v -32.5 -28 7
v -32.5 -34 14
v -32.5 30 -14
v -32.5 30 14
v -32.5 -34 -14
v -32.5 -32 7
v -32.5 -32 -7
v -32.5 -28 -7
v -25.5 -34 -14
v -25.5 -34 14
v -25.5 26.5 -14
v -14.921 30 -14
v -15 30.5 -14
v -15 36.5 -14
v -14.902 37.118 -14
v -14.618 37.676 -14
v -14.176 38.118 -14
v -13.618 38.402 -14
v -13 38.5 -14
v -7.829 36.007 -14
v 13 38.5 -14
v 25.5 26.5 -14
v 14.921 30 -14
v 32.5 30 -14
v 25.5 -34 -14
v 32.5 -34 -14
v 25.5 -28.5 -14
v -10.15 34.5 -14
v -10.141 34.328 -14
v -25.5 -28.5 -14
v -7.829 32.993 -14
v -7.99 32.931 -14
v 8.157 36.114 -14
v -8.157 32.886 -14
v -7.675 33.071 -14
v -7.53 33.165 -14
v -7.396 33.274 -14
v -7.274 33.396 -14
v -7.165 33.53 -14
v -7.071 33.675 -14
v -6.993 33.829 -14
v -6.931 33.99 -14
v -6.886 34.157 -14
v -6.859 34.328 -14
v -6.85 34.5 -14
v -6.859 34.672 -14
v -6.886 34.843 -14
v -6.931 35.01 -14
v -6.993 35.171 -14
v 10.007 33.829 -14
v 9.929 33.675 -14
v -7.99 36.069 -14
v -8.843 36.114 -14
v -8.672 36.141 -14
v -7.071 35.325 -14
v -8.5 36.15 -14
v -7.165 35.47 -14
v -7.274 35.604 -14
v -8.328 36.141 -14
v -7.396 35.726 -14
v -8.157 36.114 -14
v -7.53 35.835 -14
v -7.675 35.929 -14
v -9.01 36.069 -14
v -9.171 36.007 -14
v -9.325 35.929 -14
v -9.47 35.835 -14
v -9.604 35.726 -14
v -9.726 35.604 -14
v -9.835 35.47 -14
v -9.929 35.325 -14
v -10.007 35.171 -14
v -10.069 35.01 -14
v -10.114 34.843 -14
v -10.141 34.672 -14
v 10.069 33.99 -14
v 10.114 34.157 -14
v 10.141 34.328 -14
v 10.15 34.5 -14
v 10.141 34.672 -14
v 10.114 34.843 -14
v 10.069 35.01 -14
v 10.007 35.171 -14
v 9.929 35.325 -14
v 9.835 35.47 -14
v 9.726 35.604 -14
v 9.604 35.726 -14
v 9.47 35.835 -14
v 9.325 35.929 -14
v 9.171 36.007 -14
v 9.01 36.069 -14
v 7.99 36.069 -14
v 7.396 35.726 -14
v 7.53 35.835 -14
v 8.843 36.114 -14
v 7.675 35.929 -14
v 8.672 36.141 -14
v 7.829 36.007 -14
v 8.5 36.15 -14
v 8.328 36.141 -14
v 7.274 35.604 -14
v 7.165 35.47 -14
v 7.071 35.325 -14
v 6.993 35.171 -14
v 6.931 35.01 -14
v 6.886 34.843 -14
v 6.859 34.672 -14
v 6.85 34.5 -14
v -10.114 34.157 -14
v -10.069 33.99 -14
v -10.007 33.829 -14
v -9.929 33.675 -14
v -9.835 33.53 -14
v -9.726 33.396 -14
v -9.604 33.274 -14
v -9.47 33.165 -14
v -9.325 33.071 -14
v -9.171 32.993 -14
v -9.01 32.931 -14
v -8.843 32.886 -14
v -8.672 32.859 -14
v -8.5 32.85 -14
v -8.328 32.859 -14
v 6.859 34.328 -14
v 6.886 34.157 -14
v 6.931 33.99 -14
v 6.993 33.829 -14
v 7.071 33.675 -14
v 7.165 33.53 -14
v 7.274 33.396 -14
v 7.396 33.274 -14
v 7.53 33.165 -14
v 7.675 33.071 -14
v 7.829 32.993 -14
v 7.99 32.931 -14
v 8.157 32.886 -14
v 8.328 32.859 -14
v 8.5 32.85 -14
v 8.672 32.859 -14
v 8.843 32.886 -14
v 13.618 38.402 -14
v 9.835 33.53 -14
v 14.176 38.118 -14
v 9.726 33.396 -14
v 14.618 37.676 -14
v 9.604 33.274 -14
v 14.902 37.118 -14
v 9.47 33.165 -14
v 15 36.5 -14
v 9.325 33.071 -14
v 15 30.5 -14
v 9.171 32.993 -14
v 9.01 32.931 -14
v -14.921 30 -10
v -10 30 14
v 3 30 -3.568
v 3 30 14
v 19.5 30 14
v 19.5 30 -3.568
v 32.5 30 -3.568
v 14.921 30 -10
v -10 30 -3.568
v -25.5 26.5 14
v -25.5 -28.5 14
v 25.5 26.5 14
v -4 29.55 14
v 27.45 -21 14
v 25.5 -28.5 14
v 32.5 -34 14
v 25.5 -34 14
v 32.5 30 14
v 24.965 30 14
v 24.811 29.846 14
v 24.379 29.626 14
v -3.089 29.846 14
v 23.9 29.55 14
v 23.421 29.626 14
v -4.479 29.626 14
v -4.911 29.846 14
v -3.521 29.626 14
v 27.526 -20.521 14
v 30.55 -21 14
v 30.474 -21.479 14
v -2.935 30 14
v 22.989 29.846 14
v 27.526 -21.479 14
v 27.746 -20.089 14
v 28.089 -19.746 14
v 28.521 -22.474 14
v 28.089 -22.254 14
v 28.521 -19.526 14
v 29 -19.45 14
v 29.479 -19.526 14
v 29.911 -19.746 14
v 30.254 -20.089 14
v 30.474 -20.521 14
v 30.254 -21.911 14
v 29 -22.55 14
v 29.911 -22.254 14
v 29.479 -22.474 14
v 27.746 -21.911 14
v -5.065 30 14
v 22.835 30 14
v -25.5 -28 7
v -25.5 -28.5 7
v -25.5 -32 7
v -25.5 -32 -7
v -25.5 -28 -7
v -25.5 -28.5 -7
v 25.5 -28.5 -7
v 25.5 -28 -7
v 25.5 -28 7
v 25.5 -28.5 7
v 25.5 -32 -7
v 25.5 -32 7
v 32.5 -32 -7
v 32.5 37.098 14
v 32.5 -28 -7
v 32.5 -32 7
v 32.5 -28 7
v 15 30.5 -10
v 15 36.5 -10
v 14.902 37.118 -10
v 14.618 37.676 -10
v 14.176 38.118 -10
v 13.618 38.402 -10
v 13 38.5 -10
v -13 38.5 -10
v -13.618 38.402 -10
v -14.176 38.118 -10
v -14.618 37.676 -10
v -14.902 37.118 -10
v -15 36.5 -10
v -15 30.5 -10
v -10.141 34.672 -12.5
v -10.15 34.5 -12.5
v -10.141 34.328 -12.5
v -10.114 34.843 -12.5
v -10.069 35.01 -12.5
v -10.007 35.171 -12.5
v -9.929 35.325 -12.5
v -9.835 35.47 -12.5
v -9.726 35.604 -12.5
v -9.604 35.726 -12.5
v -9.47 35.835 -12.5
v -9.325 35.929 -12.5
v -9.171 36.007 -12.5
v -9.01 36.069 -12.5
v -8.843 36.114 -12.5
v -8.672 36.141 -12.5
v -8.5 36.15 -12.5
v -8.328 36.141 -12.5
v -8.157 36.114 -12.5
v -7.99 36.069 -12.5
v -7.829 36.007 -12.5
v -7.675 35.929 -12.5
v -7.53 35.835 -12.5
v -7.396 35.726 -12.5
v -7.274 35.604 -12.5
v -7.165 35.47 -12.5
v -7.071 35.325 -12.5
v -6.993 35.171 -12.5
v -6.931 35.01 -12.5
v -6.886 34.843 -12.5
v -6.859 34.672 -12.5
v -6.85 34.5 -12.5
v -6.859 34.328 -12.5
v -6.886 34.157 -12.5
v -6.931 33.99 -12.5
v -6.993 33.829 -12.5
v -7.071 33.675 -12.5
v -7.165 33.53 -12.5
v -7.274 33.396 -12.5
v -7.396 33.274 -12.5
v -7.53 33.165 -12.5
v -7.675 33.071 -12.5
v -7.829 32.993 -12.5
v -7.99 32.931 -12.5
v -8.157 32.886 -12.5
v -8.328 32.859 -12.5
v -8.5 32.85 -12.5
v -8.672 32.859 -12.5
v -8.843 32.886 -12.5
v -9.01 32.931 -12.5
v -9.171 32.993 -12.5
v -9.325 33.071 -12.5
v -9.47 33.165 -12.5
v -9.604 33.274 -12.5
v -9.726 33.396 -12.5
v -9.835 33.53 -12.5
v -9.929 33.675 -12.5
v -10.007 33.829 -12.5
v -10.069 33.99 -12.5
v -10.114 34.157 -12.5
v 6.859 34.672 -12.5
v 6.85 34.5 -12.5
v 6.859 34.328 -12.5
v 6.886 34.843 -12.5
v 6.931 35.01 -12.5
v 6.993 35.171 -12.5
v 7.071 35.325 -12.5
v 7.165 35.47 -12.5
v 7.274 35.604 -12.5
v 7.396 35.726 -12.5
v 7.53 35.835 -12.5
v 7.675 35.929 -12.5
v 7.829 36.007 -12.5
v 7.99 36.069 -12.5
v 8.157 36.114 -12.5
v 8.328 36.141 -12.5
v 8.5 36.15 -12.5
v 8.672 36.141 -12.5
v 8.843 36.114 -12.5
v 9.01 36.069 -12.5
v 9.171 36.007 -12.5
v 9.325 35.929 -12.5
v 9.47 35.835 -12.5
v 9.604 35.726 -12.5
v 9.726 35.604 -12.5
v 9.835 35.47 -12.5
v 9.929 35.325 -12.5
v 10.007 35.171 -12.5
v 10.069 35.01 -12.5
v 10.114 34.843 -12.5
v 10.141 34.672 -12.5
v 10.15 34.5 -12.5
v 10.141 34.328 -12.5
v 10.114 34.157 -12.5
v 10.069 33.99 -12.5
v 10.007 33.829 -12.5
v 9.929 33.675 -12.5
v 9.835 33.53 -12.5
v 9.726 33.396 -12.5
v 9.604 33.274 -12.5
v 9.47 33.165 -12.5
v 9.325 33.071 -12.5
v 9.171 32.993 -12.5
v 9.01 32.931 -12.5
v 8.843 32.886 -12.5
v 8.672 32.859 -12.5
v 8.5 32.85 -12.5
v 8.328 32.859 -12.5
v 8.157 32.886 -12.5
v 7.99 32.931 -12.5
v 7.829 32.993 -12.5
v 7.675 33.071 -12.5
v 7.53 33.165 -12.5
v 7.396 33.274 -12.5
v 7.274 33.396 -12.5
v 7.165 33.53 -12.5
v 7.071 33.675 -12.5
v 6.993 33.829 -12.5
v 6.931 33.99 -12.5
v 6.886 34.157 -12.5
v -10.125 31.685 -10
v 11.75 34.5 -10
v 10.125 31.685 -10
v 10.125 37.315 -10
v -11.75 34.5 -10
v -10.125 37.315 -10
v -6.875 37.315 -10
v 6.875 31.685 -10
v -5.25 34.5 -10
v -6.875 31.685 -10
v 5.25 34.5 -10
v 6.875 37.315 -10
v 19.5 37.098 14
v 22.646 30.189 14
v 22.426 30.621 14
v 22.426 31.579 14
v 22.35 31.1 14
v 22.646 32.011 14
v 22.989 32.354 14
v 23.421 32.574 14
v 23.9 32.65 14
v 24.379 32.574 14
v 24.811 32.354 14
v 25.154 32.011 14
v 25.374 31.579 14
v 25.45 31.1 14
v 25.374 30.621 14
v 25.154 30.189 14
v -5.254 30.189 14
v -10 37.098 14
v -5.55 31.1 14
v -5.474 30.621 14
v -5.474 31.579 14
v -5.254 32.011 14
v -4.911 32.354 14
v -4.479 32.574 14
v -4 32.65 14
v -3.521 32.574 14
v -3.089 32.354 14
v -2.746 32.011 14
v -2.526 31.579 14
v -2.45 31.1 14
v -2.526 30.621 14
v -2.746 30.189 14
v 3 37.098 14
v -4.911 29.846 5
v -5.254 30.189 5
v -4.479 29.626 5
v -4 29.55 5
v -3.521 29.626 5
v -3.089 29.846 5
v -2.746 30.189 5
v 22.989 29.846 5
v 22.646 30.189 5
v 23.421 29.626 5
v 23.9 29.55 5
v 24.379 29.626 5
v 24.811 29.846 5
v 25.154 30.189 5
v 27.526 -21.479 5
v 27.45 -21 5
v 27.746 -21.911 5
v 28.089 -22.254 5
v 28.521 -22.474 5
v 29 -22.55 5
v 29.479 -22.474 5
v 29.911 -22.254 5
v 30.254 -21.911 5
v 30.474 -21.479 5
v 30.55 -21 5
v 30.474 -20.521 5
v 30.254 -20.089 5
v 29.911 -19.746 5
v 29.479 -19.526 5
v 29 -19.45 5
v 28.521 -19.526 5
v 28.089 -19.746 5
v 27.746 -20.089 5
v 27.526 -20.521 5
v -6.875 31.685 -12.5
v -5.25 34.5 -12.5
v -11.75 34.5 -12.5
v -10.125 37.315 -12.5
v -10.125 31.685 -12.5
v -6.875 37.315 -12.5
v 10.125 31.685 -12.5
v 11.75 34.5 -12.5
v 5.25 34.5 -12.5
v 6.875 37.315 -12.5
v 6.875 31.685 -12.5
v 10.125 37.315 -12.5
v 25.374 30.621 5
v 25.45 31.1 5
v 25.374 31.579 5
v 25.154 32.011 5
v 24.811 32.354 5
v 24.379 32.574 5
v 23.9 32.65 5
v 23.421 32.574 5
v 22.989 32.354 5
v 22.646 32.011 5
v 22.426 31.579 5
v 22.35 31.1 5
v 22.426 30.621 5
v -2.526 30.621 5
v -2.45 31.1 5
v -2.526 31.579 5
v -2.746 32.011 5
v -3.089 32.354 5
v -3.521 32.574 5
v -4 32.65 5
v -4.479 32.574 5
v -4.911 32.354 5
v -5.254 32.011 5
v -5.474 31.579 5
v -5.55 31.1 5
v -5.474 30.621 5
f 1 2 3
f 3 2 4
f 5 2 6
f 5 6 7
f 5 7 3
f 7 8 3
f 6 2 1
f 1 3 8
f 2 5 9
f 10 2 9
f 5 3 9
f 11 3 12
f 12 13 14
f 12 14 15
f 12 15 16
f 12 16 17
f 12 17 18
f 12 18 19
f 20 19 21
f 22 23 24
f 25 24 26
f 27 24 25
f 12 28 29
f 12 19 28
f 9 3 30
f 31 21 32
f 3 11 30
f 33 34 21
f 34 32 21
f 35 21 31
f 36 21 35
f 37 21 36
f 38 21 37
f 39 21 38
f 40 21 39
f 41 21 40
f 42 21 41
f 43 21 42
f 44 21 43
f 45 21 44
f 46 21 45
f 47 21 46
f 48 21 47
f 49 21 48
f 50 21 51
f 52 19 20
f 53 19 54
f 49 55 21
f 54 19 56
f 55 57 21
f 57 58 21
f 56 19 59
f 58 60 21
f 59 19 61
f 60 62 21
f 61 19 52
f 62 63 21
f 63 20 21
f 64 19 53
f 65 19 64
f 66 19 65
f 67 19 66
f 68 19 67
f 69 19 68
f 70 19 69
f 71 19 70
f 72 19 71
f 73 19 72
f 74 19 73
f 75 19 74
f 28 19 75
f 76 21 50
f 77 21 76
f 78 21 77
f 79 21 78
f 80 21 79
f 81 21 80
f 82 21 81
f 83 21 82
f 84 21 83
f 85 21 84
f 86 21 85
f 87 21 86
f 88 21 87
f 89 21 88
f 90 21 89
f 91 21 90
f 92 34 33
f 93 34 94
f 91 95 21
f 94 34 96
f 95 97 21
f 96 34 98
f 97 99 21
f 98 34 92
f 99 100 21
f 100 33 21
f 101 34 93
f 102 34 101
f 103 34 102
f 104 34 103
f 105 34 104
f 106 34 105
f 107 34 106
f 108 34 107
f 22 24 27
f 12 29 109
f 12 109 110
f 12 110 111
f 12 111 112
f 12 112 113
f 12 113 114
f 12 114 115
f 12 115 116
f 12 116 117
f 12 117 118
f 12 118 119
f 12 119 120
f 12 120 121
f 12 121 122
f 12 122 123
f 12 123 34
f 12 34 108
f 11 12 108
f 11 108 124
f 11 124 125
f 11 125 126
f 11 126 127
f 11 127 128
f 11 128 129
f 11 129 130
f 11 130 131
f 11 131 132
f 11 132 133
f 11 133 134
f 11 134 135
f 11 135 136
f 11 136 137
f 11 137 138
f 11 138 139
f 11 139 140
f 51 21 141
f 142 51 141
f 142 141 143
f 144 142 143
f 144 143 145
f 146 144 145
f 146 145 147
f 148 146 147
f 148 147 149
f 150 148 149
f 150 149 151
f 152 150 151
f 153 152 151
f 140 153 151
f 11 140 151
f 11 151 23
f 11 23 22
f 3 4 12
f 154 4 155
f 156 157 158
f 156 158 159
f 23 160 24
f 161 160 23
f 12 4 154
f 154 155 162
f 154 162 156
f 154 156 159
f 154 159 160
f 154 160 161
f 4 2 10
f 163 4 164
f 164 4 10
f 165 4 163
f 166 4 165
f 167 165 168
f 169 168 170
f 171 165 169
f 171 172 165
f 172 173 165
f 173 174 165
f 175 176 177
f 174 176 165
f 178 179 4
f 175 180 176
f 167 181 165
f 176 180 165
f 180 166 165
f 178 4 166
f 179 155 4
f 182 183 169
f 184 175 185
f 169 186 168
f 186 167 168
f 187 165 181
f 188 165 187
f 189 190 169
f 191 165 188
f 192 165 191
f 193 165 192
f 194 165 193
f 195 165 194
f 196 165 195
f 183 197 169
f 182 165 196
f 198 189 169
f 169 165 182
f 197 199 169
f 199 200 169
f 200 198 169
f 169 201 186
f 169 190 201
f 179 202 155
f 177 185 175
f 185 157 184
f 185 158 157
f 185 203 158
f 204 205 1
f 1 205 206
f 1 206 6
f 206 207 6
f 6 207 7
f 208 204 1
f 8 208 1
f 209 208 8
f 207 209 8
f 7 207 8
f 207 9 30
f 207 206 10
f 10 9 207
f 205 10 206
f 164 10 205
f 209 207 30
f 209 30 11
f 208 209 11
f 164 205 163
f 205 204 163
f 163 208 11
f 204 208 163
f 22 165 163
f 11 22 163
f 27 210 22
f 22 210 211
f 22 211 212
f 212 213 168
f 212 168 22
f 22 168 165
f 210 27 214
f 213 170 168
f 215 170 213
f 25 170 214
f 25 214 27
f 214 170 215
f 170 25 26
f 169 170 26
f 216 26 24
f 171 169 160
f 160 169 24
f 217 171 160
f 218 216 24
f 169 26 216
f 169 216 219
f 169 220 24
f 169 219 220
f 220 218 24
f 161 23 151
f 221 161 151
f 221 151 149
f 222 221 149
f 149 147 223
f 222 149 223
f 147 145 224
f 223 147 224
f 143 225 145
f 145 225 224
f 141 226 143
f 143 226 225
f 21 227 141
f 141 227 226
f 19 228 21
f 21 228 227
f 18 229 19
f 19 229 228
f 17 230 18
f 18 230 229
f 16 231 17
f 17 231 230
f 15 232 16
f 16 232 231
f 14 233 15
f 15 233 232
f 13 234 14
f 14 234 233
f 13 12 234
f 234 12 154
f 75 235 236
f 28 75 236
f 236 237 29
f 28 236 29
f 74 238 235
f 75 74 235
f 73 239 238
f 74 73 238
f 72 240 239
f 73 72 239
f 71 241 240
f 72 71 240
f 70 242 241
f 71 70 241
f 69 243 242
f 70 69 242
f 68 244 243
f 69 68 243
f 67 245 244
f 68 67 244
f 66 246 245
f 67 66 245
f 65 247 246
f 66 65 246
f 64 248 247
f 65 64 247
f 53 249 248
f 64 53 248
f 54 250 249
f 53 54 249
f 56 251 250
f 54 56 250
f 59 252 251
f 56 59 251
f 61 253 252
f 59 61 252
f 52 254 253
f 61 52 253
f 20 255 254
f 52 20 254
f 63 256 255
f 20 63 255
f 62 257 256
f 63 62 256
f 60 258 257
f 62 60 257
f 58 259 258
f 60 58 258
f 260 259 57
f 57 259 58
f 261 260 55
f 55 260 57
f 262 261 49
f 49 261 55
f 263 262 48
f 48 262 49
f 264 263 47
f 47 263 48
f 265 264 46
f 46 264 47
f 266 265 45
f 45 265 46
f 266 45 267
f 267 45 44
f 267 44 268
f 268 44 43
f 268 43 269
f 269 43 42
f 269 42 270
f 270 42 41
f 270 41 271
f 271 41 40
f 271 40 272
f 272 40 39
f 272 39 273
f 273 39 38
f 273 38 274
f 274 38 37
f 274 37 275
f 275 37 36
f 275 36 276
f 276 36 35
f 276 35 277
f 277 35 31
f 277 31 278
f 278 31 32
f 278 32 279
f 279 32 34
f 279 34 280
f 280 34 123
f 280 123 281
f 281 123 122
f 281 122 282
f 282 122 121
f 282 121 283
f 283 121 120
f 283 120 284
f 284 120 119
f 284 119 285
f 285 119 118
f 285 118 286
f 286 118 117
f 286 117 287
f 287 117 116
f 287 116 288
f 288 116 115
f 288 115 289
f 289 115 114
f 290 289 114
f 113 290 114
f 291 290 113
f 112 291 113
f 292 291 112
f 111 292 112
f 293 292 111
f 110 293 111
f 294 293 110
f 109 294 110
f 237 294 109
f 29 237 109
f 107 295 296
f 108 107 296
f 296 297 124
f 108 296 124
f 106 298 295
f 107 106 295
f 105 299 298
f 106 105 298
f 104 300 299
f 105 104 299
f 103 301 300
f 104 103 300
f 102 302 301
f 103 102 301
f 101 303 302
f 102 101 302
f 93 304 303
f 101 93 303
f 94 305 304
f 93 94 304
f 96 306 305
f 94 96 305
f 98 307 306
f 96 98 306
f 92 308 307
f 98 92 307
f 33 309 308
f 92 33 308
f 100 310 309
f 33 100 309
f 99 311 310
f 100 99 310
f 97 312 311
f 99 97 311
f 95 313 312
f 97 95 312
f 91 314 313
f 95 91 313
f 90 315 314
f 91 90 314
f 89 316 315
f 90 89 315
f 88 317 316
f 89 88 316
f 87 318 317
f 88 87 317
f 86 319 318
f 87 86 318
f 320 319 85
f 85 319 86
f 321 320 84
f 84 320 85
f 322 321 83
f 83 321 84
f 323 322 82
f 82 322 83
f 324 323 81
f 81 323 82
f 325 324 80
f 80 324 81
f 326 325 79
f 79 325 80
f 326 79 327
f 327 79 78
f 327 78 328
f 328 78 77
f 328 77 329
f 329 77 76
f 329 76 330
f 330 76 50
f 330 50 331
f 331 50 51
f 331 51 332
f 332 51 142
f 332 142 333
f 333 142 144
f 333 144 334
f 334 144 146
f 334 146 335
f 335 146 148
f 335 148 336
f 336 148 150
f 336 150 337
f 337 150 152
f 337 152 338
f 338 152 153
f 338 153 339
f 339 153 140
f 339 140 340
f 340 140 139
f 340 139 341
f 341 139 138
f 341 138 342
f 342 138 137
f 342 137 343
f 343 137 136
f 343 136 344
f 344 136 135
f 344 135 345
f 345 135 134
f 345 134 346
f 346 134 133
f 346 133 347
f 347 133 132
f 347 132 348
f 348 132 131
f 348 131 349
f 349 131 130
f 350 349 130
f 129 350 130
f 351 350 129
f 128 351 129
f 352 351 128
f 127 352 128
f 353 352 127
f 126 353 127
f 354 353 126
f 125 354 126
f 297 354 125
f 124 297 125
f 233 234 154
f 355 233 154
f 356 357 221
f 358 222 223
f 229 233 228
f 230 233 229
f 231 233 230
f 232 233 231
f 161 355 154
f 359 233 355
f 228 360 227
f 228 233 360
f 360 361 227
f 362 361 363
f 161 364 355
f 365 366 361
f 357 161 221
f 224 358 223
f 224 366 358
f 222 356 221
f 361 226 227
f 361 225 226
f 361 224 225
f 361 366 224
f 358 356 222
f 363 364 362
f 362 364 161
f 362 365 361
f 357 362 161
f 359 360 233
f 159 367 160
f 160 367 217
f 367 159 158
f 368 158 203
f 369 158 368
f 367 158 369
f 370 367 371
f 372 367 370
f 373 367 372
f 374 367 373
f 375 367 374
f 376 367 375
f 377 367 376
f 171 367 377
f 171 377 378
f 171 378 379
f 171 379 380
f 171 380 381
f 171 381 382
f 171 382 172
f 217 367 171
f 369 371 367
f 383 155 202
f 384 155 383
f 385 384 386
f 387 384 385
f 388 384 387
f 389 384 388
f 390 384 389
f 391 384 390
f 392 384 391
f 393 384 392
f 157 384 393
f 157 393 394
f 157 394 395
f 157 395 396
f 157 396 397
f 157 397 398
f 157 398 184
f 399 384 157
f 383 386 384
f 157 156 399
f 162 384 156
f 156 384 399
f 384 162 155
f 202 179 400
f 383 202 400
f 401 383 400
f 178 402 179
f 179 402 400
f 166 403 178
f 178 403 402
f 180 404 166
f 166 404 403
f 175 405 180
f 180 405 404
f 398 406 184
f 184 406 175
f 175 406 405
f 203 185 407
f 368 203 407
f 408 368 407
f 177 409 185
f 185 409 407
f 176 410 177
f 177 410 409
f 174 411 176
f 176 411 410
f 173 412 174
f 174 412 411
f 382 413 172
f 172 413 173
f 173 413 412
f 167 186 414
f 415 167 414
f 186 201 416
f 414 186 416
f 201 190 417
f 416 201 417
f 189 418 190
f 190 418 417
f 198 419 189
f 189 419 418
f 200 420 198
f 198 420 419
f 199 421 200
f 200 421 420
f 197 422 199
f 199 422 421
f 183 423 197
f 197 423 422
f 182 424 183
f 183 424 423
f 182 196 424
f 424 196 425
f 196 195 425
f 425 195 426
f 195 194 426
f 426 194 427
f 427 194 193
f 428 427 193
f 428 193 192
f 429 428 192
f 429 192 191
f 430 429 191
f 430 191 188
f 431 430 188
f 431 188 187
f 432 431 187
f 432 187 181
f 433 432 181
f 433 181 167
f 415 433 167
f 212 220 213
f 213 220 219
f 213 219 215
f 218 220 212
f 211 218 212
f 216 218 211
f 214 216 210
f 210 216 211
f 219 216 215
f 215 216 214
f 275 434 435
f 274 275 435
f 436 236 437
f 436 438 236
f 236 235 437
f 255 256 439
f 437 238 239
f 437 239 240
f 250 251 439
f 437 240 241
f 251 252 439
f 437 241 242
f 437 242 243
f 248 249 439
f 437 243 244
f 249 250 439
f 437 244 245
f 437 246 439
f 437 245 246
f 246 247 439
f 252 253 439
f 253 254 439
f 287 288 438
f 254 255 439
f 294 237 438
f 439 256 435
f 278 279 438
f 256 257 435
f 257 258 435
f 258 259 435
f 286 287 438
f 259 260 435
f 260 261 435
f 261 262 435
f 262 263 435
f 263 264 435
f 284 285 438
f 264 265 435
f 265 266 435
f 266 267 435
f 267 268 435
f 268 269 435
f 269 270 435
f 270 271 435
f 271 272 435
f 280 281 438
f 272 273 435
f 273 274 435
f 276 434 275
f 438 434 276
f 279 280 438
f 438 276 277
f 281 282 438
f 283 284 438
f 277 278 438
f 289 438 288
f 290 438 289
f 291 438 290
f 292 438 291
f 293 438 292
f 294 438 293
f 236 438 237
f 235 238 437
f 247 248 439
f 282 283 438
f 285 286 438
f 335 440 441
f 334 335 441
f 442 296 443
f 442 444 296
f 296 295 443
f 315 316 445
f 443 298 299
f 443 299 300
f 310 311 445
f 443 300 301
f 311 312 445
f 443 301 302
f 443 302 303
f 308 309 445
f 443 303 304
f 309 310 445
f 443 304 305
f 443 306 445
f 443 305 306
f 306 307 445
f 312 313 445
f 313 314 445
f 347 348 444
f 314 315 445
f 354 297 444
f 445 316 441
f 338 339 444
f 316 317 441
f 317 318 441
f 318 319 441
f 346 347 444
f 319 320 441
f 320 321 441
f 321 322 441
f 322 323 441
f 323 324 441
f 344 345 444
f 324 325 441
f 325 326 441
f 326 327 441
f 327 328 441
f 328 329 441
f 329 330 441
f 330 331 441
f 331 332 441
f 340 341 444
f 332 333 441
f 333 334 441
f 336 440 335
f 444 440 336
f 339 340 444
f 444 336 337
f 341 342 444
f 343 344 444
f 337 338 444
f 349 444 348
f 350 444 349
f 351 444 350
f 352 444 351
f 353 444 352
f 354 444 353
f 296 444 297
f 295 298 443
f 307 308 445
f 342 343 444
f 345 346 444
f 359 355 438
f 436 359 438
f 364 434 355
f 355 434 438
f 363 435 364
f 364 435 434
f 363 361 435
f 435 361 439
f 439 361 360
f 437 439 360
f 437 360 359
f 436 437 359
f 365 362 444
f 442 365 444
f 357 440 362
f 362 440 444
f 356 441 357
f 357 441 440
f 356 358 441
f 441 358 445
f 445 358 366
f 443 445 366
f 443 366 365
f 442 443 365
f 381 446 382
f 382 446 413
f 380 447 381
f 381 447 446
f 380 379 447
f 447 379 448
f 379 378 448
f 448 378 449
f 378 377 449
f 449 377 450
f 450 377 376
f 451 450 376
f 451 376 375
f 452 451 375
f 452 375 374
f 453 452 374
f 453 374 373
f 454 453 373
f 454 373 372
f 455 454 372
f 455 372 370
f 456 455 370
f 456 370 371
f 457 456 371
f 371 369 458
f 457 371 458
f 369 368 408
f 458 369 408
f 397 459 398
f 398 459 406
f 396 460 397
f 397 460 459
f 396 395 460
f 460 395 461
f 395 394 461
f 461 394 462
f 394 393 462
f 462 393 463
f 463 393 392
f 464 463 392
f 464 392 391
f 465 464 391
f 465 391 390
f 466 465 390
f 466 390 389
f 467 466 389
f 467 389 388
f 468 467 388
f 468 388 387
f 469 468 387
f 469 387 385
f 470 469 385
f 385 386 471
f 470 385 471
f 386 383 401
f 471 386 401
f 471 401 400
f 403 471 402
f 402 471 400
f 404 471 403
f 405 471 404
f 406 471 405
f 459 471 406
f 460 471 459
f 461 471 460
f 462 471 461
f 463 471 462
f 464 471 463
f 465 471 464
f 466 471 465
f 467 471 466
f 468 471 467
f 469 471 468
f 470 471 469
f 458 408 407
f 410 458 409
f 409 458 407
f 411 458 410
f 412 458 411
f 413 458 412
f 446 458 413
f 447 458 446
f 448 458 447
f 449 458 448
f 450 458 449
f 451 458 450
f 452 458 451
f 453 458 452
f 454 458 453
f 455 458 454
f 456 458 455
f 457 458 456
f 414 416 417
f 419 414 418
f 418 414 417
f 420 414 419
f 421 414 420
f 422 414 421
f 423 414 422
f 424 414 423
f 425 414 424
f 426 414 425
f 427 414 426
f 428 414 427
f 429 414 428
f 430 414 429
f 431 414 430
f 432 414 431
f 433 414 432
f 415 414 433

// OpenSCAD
//BATTERY PACK HOLDER
//(For clip closing prototype)
//¿¿parametric??
//JGH 16/12/2013

battery_holder();

module battery_holder(){
difference(){
	union(){
		//MAIN BOX
		difference(){
			union(){
				//External holder dimensions
				translate([0,1,0])
				cube([65, 58, 28], center=true);
		
				//clip brackets
				translate([-65/2+3.5,-31,0])
				color([1,0,0])
				cube([7, 6, 28], center=true);
		
				translate([65/2-3.5,-31,0])
				color([1,0,0])
				cube([7, 6, 28],center=true);
			}
			
			//Battery pack dimensions
			translate([0, -1, 0])
			cube([51, 55, 30], center=true);
		
			//clip hole substraction
			translate([0,-30,0])
			color([1,0,0])
			cube([68, 4, 14], center=true);
		
		}
		
		//ATTACHMENT EAR
		translate([0, 33.5,-12.5])
		difference(){
			minkowski(){
				cube([26,6,3], center=true);
				cylinder(r=2, h=1, $fn=20);
			}
			
			//NUT HOLES
			translate([17/2,1,0])
			cylinder(r=6.5/2, h=10, $fn=6);
			
			translate([-17/2,1,0])
			cylinder(r=6.5/2, h=10, $fn=6);
			
			//SCREW HOLES
			translate([17/2,1,0])
			cylinder(r=3.3/2, h=10, $fn=60, center=true);
			
			translate([-17/2,1,0])
			cylinder(r=3.3/2, h=10, $fn=60, center=true);
		}
		
		//ARDUINO HOLE SUPPORTS
		difference(){
			translate([19.5,15,-14])
			rotate([-22,0,0])
			cube([13, 10, 35]);
			
			translate([0,0,50+14])	//HUGE CUBE ABOVE
			cube([100,100,100], center=true);
			
			translate([0,0,-50-14])		//HUGE CUBE BELOW
			cube([100,100,100], center=true);
			
			translate([0, -1, 0])		//SUBTRACT INSIDE
			cube([51, 55, 30], center=true);
		
		}
		
		difference(){
			translate([-10,15,-14])
			rotate([-22,0,0])
			cube([13, 10, 35]);
			
			translate([0,0,50+14])	//HUGE CUBE ABOVE
			cube([100,100,100], center=true);
			
			translate([0,0,-50-14])		//HUGE CUBE BELOW
			cube([100,100,100], center=true);
			
			translate([0, -1, 0])		//SUBTRACT INSIDE
			cube([51, 55, 30], center=true);
		
		}
	}
	
	//ARDUINO MOUNTING HOLES
	translate([65/2-3.5,-21,15])
	rotate([0,0,180])
	union(){
		cylinder(r=3.1/2, h=20, center=true, $fn=20);
		
		translate([5.1,-50.8-1.3,0])
		cylinder(r=3.1/2, h=20, center=true, $fn=20);
		
		translate([27.9+5.1,-50.8-1.3,0])
		color([0,0,1])
		cylinder(r=3.1/2, h=20, center=true, $fn=20);
	}
}
}


	
	
